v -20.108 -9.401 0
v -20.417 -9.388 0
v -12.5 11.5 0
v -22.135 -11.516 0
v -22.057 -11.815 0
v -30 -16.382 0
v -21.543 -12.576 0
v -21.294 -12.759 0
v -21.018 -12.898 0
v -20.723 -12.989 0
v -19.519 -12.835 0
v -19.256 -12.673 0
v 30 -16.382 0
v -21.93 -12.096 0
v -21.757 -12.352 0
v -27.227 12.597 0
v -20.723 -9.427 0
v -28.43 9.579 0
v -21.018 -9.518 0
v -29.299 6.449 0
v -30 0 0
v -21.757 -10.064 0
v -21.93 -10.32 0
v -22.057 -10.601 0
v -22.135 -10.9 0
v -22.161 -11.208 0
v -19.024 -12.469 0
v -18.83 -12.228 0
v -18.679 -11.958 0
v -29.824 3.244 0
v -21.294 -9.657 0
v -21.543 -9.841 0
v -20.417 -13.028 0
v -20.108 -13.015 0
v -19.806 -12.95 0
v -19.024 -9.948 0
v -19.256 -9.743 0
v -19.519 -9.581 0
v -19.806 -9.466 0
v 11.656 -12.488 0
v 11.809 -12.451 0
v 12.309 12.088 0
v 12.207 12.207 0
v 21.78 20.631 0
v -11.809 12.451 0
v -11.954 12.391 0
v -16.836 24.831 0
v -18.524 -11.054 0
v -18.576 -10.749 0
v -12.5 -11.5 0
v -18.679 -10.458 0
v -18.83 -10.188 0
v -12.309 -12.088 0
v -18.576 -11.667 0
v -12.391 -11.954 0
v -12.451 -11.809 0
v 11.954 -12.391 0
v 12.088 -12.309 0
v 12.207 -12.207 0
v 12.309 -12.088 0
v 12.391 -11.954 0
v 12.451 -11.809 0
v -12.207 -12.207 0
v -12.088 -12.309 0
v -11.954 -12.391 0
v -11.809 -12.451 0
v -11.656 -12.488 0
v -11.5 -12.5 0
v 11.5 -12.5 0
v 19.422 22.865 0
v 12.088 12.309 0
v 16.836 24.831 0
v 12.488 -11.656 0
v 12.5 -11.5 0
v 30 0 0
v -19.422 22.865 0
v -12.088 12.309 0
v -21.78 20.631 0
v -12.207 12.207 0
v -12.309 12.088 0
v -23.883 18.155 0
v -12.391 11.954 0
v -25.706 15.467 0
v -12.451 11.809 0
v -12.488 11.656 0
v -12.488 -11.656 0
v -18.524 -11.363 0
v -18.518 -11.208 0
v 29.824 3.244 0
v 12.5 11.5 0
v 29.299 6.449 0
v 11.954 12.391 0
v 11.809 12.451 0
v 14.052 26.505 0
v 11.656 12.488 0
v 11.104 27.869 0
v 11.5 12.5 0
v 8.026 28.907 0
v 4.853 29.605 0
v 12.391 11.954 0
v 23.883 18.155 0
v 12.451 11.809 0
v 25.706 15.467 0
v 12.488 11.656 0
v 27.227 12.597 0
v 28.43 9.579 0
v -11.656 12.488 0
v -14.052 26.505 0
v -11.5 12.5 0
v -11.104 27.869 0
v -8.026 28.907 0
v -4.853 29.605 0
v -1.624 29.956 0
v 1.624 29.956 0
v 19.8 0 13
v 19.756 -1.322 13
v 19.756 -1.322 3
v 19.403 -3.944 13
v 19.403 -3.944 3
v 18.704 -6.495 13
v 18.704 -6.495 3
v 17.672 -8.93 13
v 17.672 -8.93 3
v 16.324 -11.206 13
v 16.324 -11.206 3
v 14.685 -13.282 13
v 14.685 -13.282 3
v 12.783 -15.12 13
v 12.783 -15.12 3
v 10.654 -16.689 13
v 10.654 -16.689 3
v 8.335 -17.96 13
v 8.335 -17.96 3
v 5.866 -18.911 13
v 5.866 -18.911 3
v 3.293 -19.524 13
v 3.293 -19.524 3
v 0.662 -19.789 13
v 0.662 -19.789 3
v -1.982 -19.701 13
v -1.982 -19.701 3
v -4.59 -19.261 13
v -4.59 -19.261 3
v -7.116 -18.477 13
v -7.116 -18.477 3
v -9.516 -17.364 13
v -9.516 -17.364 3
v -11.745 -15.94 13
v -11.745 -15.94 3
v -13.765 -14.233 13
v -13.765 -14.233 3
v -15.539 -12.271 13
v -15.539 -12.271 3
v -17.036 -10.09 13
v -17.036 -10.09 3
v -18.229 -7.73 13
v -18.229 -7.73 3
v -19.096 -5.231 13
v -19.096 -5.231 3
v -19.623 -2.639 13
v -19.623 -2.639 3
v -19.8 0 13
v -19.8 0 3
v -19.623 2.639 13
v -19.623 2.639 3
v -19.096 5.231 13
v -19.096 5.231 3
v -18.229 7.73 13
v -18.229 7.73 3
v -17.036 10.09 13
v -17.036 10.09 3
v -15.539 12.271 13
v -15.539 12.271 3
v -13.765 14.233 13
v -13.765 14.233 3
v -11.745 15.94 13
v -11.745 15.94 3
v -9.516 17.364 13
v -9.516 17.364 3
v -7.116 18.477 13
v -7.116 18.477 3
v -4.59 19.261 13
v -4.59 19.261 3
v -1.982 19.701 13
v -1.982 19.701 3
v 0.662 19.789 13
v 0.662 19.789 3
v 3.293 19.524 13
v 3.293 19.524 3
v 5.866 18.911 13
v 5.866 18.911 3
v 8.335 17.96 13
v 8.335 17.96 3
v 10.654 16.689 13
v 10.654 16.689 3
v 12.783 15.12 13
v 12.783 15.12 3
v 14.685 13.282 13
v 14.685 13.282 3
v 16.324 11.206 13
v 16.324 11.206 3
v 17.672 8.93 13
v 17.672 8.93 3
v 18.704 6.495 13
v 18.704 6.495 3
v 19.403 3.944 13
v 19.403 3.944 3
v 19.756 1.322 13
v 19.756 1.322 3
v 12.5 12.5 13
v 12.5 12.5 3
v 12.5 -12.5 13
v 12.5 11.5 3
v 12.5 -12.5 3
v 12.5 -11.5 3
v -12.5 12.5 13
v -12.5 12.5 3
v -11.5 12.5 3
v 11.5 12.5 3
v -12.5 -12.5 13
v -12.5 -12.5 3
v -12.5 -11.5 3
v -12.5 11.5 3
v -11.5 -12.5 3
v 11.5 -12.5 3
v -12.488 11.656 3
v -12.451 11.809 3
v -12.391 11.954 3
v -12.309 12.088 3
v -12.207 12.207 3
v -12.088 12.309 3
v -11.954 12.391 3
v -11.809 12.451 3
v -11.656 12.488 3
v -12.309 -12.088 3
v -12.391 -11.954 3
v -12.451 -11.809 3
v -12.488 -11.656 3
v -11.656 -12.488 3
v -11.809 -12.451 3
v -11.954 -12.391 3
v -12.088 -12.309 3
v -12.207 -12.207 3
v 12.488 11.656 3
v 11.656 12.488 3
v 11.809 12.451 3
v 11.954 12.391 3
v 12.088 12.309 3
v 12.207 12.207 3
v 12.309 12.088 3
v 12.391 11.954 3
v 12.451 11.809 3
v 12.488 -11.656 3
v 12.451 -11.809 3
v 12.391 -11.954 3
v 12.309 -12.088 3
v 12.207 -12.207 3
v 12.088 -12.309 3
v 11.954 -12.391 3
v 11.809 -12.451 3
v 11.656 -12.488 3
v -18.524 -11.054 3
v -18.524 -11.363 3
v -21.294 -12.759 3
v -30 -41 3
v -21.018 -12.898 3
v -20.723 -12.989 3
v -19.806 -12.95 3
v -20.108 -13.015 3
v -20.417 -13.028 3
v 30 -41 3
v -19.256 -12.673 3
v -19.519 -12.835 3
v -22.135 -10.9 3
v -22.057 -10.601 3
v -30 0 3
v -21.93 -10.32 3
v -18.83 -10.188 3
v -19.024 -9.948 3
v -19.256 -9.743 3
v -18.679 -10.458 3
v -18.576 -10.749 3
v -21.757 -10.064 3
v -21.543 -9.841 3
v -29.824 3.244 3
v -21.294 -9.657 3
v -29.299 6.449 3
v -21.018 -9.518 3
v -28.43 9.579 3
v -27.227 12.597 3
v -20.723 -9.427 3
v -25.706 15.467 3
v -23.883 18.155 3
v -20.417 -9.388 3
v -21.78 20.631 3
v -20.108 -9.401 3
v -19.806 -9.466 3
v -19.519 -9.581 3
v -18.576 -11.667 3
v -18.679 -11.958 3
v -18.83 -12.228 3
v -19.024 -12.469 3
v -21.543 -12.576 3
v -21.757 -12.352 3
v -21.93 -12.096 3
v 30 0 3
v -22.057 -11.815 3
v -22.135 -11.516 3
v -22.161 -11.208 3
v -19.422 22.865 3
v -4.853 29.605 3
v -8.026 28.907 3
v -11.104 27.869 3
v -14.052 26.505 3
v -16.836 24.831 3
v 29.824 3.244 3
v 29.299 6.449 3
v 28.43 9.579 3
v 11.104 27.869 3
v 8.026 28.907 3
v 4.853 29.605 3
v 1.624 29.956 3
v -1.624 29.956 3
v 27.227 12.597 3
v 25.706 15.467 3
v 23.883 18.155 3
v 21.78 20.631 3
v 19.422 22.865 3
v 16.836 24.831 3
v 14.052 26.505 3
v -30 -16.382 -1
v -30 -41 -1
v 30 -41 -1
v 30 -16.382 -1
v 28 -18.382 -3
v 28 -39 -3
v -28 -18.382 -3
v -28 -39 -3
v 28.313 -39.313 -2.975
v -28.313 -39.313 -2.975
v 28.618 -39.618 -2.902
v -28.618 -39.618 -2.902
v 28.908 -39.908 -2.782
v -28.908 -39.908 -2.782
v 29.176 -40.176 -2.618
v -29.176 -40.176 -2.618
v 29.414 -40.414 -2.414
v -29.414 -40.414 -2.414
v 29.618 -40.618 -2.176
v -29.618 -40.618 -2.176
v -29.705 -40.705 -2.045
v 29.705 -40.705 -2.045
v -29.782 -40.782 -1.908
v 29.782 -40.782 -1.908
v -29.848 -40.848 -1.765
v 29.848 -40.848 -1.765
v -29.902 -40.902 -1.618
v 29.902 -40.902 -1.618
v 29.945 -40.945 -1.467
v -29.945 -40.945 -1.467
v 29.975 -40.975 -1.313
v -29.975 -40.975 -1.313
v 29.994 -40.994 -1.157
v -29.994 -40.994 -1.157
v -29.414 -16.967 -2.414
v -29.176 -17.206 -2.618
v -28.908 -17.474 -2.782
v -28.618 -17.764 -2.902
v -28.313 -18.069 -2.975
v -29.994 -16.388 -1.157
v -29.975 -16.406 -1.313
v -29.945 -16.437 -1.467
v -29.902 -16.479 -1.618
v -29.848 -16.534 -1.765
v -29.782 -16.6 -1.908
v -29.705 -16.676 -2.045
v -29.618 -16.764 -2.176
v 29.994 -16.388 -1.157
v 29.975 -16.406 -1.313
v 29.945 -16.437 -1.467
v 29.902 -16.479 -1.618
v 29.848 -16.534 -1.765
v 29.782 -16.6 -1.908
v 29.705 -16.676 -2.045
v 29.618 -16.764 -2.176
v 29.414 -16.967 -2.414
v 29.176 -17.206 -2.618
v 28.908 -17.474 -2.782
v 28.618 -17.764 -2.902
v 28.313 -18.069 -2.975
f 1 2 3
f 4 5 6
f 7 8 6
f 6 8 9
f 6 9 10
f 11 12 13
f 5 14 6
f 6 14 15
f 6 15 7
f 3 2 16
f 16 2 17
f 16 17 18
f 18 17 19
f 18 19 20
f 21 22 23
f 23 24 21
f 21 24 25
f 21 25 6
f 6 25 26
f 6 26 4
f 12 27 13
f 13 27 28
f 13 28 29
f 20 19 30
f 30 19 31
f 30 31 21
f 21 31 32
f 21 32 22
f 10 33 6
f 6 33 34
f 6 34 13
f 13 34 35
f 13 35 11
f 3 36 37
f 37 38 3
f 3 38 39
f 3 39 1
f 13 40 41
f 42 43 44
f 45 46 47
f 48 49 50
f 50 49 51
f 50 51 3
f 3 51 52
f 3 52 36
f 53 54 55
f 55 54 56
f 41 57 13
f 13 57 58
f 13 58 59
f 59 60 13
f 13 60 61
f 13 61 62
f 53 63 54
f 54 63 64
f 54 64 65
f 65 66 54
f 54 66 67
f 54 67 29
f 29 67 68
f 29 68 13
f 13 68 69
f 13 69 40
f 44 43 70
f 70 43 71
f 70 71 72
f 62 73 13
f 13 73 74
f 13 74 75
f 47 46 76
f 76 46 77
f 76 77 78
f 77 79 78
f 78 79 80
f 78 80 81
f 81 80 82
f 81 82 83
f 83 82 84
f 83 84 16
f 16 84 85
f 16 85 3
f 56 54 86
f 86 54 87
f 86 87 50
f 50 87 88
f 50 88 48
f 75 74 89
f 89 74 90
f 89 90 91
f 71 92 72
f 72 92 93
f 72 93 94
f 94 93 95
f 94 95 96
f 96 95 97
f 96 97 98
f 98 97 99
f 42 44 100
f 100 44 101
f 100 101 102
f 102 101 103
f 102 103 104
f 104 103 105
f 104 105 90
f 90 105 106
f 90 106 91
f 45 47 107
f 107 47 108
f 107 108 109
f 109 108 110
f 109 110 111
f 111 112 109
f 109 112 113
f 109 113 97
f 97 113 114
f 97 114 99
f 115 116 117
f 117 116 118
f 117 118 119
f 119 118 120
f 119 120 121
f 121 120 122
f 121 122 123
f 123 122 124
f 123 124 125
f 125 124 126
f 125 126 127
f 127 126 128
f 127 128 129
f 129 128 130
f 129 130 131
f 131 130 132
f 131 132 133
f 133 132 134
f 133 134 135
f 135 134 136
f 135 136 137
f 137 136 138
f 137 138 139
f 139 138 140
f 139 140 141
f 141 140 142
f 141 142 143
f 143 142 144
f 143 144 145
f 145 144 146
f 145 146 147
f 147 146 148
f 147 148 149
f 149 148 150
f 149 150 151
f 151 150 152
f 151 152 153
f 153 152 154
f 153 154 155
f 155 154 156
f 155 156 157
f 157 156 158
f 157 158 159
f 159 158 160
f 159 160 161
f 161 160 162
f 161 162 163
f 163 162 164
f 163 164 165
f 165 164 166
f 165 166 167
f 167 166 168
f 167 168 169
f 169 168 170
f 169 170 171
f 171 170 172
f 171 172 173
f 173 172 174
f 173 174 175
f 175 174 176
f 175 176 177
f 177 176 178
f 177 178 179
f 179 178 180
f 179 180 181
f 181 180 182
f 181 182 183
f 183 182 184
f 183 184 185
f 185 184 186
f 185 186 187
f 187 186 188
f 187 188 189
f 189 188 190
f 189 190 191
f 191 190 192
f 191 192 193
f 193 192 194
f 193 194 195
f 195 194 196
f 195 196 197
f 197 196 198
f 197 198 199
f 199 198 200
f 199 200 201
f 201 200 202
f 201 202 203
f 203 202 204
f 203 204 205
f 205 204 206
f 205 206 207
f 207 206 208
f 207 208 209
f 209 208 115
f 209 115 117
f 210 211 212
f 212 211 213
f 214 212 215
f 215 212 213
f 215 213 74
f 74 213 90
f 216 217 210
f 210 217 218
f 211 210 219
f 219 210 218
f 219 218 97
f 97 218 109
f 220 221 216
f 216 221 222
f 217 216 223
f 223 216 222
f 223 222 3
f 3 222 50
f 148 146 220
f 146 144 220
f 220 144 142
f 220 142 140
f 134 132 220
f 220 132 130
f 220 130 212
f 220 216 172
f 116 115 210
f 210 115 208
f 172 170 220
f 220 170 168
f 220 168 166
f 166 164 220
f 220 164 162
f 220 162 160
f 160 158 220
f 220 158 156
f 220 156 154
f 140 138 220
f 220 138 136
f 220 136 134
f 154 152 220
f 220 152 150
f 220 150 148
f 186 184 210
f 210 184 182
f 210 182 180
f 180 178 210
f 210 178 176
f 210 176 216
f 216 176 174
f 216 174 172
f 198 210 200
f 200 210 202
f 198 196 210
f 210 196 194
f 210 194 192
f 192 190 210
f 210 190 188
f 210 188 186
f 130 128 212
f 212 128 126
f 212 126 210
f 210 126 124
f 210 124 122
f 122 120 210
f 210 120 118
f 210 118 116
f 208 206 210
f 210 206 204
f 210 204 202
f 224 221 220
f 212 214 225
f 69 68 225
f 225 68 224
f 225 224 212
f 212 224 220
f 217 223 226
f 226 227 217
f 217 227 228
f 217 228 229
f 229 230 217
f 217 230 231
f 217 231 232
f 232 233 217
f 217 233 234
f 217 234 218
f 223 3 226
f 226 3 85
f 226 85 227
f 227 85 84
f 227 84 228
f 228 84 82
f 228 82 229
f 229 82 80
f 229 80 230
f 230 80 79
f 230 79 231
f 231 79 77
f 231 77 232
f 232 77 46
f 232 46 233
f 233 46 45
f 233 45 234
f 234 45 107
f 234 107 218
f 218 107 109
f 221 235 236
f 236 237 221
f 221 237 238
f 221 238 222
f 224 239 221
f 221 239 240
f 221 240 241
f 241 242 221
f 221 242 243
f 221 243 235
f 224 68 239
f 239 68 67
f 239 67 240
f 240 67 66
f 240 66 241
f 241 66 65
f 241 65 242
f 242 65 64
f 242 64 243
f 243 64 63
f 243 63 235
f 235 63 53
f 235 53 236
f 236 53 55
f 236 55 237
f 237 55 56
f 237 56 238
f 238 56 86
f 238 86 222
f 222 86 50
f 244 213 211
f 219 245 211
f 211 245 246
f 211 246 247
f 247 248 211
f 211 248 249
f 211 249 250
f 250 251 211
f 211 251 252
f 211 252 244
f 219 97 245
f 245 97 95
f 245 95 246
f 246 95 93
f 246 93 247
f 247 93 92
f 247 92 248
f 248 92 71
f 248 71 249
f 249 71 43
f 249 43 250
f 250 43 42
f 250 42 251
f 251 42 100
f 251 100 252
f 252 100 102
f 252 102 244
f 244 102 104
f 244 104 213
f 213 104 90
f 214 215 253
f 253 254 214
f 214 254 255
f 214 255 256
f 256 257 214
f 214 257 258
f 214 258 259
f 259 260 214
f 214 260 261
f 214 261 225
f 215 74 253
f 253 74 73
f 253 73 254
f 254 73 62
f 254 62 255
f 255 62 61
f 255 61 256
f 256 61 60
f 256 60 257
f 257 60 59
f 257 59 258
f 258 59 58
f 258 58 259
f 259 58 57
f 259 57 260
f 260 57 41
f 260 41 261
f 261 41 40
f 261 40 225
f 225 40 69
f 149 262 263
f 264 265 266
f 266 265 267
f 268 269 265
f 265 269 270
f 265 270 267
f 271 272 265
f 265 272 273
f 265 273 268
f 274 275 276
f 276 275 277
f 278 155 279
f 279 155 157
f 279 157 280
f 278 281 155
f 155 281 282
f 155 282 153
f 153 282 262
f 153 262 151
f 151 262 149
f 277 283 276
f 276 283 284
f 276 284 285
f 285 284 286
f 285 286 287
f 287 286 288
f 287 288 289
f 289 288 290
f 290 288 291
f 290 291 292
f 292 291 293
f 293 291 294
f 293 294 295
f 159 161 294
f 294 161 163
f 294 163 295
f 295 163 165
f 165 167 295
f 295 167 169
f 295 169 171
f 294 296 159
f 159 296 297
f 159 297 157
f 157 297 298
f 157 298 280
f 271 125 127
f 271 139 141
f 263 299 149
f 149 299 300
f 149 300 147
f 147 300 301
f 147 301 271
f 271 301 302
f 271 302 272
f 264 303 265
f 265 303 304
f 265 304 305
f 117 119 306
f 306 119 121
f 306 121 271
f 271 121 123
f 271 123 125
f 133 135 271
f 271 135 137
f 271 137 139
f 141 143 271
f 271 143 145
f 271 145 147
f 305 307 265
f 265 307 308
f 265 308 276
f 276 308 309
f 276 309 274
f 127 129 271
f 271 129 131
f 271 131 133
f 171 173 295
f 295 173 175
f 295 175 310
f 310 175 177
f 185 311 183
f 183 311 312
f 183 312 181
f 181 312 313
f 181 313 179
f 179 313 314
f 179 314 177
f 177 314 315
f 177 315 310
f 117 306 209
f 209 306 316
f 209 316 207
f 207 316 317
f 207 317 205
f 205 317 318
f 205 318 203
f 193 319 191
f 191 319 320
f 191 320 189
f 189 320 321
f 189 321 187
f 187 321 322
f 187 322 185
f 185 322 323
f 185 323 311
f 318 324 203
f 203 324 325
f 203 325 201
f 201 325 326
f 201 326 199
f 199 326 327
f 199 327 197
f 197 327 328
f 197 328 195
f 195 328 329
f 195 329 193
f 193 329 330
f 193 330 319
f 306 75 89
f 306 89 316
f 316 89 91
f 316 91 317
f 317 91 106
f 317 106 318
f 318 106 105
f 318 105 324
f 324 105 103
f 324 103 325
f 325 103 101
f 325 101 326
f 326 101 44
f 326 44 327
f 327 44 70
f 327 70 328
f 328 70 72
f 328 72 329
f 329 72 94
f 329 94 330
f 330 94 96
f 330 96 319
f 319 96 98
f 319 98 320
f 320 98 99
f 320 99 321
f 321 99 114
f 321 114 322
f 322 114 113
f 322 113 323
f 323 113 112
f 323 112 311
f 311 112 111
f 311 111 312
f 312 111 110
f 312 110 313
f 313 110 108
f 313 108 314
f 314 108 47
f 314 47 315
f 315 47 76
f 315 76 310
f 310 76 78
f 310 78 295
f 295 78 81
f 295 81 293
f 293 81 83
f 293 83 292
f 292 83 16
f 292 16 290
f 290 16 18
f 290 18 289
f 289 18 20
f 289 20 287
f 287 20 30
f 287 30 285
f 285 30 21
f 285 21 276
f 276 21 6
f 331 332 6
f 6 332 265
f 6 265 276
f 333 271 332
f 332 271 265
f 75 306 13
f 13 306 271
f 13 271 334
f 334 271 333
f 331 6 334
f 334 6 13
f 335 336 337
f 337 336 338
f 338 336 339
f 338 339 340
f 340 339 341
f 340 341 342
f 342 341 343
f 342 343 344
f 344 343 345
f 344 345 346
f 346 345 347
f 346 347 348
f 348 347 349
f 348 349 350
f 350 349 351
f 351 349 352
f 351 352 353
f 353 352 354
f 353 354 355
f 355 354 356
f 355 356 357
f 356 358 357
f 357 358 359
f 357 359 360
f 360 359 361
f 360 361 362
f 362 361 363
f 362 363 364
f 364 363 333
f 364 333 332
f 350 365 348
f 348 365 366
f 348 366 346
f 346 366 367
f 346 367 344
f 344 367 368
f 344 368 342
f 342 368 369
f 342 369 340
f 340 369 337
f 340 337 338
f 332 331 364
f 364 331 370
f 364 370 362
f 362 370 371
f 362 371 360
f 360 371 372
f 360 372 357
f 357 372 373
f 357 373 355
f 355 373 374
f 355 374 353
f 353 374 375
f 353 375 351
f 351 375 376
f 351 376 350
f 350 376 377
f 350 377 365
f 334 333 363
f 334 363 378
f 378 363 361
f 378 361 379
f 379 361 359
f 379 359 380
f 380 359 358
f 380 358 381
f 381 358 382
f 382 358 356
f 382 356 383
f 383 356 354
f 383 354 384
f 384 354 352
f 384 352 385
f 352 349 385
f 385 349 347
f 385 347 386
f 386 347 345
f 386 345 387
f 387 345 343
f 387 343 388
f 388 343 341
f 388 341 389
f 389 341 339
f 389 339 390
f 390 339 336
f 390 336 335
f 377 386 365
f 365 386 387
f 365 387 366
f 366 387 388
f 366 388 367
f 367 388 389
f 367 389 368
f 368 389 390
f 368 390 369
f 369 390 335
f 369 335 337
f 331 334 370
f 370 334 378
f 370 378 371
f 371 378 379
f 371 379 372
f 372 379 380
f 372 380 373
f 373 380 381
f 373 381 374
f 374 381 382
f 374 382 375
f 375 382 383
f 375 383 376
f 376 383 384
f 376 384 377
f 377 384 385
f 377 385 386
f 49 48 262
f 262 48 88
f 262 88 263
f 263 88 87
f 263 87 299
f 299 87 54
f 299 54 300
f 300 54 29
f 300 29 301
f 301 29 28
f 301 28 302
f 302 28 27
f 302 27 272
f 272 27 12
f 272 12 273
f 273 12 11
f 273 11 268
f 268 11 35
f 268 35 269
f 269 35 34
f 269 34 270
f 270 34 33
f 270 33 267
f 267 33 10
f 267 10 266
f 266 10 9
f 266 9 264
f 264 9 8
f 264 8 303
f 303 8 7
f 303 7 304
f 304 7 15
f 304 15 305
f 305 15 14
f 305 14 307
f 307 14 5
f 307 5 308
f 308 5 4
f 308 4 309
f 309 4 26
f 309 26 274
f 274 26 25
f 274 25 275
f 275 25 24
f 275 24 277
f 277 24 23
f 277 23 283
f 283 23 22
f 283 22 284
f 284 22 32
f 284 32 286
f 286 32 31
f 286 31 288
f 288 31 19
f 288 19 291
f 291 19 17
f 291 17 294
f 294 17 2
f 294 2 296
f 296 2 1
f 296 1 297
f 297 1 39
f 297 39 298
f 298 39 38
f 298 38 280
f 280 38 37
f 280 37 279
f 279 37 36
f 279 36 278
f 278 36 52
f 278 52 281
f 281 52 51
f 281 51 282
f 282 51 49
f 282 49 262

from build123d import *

# Parameters (mm, degrees)
SKETCH_1_R               = 19.8
EXTRUDE_1_DEPTH          = 13
SKETCH_2_R               = 19.8
EXTRUDE_2_DEPTH          = 3
SKETCH_3_W               = 60
SKETCH_3_H               = 24.618420452
EXTRUDE_3_DEPTH          = 3
FILLET_1_R               = 2
CUT_EXTRUDE_1_DEPTH      = 10
CUT_EXTRUDE_1_DEPTH_BACK = 10
SKETCH_4_R               = 1.821717012


with BuildPart() as part:
    # 草图1 → 凸台-拉伸1 (new body)
    with BuildSketch(Plane.XY):
        with Locations(Location((0, 0, 0), (0, 0, 180))):
            Circle(SKETCH_1_R)
        Polygon((0, -12.5), (12.5, -12.5), (12.5, 12.5), (0, 12.5), (-12.5, 12.5), (-12.5, -12.5), align=None, mode=Mode.SUBTRACT)
    extrude(amount=EXTRUDE_1_DEPTH)

    # 草图2 → 凸台-拉伸2 (add)
    # profile 1 of 5: a face of its own
    with BuildSketch(Plane(origin=(0, 0, 0), x_dir=(-1, 0, 0), z_dir=(0, 0, -1))):
        with BuildLine():
            ThreePointArc((30, 0), (0, 30), (-30, 0))
            Line((-30, 0), (-30, -41))
            Line((-30, -41), (30, -41))
            Line((30, -41), (30, 0))
        make_face()
        Circle(SKETCH_2_R, mode=Mode.SUBTRACT)
    # profile 2 of 5: a face of its own
    with BuildSketch(Plane(origin=(0, 0, 0), x_dir=(-1, 0, 0), z_dir=(0, 0, -1))):
        with BuildLine():
            Line((-12.5, 12.5), (-12.5, 11.5))
            ThreePointArc((-12.5, 11.5), (-12.207106781, 12.207106781), (-11.5, 12.5))
            Line((-11.5, 12.5), (-12.5, 12.5))
        make_face()
    # profile 3 of 5: a face of its own
    with BuildSketch(Plane(origin=(0, 0, 0), x_dir=(-1, 0, 0), z_dir=(0, 0, -1))):
        with BuildLine():
            ThreePointArc((12.5, -11.5), (12.207106781, -12.207106781), (11.5, -12.5))
            Line((11.5, -12.5), (12.5, -12.5))
            Line((12.5, -12.5), (12.5, -11.5))
        make_face()
    # profile 4 of 5: a face of its own
    with BuildSketch(Plane(origin=(0, 0, 0), x_dir=(-1, 0, 0), z_dir=(0, 0, -1))):
        with BuildLine():
            Line((-12.5, -12.5), (-11.5, -12.5))
            ThreePointArc((-11.5, -12.5), (-12.207106781, -12.207106781), (-12.5, -11.5))
            Line((-12.5, -11.5), (-12.5, -12.5))
        make_face()
    # profile 5 of 5: a face of its own
    with BuildSketch(Plane(origin=(0, 0, 0), x_dir=(-1, 0, 0), z_dir=(0, 0, -1))):
        with BuildLine():
            ThreePointArc((11.5, 12.5), (12.207106781, 12.207106781), (12.5, 11.5))
            Line((12.5, 11.5), (12.5, 12.5))
            Line((12.5, 12.5), (11.5, 12.5))
        make_face()
    extrude(amount=-EXTRUDE_2_DEPTH)

    # 草图3 → 凸台-拉伸3 (add)
    with BuildSketch(Plane(origin=(0, 0, 0), x_dir=(-1, 0, 0), z_dir=(0, 0, -1))):
        with Locations((0, -28.690789774)):
            Rectangle(SKETCH_3_W, SKETCH_3_H)
    extrude(amount=EXTRUDE_3_DEPTH)

    # 圆角1
    fillet_1_edges = [part.edges().sort_by_distance(p)[0] for p in [
        (30, -28.690789774, -3),
        (0, -41, -3),
        (-30, -28.690789774, -3),
        (0, -16.381579548, -3),
    ]]
    fillet(fillet_1_edges, radius=FILLET_1_R)

    # 草图4 → 切除-拉伸1 (cut, two sides: drawn at the far end of the back side and taken through both)
    with BuildSketch(Plane(origin=(0, 0, 0), x_dir=(-1, 0, 0), z_dir=(0, 0, -1)).offset(-CUT_EXTRUDE_1_DEPTH_BACK)):
        with Locations((20.33925745, -11.208047119)):
            Circle(SKETCH_4_R)
    extrude(amount=CUT_EXTRUDE_1_DEPTH + CUT_EXTRUDE_1_DEPTH_BACK, mode=Mode.SUBTRACT)


solid = part.part
